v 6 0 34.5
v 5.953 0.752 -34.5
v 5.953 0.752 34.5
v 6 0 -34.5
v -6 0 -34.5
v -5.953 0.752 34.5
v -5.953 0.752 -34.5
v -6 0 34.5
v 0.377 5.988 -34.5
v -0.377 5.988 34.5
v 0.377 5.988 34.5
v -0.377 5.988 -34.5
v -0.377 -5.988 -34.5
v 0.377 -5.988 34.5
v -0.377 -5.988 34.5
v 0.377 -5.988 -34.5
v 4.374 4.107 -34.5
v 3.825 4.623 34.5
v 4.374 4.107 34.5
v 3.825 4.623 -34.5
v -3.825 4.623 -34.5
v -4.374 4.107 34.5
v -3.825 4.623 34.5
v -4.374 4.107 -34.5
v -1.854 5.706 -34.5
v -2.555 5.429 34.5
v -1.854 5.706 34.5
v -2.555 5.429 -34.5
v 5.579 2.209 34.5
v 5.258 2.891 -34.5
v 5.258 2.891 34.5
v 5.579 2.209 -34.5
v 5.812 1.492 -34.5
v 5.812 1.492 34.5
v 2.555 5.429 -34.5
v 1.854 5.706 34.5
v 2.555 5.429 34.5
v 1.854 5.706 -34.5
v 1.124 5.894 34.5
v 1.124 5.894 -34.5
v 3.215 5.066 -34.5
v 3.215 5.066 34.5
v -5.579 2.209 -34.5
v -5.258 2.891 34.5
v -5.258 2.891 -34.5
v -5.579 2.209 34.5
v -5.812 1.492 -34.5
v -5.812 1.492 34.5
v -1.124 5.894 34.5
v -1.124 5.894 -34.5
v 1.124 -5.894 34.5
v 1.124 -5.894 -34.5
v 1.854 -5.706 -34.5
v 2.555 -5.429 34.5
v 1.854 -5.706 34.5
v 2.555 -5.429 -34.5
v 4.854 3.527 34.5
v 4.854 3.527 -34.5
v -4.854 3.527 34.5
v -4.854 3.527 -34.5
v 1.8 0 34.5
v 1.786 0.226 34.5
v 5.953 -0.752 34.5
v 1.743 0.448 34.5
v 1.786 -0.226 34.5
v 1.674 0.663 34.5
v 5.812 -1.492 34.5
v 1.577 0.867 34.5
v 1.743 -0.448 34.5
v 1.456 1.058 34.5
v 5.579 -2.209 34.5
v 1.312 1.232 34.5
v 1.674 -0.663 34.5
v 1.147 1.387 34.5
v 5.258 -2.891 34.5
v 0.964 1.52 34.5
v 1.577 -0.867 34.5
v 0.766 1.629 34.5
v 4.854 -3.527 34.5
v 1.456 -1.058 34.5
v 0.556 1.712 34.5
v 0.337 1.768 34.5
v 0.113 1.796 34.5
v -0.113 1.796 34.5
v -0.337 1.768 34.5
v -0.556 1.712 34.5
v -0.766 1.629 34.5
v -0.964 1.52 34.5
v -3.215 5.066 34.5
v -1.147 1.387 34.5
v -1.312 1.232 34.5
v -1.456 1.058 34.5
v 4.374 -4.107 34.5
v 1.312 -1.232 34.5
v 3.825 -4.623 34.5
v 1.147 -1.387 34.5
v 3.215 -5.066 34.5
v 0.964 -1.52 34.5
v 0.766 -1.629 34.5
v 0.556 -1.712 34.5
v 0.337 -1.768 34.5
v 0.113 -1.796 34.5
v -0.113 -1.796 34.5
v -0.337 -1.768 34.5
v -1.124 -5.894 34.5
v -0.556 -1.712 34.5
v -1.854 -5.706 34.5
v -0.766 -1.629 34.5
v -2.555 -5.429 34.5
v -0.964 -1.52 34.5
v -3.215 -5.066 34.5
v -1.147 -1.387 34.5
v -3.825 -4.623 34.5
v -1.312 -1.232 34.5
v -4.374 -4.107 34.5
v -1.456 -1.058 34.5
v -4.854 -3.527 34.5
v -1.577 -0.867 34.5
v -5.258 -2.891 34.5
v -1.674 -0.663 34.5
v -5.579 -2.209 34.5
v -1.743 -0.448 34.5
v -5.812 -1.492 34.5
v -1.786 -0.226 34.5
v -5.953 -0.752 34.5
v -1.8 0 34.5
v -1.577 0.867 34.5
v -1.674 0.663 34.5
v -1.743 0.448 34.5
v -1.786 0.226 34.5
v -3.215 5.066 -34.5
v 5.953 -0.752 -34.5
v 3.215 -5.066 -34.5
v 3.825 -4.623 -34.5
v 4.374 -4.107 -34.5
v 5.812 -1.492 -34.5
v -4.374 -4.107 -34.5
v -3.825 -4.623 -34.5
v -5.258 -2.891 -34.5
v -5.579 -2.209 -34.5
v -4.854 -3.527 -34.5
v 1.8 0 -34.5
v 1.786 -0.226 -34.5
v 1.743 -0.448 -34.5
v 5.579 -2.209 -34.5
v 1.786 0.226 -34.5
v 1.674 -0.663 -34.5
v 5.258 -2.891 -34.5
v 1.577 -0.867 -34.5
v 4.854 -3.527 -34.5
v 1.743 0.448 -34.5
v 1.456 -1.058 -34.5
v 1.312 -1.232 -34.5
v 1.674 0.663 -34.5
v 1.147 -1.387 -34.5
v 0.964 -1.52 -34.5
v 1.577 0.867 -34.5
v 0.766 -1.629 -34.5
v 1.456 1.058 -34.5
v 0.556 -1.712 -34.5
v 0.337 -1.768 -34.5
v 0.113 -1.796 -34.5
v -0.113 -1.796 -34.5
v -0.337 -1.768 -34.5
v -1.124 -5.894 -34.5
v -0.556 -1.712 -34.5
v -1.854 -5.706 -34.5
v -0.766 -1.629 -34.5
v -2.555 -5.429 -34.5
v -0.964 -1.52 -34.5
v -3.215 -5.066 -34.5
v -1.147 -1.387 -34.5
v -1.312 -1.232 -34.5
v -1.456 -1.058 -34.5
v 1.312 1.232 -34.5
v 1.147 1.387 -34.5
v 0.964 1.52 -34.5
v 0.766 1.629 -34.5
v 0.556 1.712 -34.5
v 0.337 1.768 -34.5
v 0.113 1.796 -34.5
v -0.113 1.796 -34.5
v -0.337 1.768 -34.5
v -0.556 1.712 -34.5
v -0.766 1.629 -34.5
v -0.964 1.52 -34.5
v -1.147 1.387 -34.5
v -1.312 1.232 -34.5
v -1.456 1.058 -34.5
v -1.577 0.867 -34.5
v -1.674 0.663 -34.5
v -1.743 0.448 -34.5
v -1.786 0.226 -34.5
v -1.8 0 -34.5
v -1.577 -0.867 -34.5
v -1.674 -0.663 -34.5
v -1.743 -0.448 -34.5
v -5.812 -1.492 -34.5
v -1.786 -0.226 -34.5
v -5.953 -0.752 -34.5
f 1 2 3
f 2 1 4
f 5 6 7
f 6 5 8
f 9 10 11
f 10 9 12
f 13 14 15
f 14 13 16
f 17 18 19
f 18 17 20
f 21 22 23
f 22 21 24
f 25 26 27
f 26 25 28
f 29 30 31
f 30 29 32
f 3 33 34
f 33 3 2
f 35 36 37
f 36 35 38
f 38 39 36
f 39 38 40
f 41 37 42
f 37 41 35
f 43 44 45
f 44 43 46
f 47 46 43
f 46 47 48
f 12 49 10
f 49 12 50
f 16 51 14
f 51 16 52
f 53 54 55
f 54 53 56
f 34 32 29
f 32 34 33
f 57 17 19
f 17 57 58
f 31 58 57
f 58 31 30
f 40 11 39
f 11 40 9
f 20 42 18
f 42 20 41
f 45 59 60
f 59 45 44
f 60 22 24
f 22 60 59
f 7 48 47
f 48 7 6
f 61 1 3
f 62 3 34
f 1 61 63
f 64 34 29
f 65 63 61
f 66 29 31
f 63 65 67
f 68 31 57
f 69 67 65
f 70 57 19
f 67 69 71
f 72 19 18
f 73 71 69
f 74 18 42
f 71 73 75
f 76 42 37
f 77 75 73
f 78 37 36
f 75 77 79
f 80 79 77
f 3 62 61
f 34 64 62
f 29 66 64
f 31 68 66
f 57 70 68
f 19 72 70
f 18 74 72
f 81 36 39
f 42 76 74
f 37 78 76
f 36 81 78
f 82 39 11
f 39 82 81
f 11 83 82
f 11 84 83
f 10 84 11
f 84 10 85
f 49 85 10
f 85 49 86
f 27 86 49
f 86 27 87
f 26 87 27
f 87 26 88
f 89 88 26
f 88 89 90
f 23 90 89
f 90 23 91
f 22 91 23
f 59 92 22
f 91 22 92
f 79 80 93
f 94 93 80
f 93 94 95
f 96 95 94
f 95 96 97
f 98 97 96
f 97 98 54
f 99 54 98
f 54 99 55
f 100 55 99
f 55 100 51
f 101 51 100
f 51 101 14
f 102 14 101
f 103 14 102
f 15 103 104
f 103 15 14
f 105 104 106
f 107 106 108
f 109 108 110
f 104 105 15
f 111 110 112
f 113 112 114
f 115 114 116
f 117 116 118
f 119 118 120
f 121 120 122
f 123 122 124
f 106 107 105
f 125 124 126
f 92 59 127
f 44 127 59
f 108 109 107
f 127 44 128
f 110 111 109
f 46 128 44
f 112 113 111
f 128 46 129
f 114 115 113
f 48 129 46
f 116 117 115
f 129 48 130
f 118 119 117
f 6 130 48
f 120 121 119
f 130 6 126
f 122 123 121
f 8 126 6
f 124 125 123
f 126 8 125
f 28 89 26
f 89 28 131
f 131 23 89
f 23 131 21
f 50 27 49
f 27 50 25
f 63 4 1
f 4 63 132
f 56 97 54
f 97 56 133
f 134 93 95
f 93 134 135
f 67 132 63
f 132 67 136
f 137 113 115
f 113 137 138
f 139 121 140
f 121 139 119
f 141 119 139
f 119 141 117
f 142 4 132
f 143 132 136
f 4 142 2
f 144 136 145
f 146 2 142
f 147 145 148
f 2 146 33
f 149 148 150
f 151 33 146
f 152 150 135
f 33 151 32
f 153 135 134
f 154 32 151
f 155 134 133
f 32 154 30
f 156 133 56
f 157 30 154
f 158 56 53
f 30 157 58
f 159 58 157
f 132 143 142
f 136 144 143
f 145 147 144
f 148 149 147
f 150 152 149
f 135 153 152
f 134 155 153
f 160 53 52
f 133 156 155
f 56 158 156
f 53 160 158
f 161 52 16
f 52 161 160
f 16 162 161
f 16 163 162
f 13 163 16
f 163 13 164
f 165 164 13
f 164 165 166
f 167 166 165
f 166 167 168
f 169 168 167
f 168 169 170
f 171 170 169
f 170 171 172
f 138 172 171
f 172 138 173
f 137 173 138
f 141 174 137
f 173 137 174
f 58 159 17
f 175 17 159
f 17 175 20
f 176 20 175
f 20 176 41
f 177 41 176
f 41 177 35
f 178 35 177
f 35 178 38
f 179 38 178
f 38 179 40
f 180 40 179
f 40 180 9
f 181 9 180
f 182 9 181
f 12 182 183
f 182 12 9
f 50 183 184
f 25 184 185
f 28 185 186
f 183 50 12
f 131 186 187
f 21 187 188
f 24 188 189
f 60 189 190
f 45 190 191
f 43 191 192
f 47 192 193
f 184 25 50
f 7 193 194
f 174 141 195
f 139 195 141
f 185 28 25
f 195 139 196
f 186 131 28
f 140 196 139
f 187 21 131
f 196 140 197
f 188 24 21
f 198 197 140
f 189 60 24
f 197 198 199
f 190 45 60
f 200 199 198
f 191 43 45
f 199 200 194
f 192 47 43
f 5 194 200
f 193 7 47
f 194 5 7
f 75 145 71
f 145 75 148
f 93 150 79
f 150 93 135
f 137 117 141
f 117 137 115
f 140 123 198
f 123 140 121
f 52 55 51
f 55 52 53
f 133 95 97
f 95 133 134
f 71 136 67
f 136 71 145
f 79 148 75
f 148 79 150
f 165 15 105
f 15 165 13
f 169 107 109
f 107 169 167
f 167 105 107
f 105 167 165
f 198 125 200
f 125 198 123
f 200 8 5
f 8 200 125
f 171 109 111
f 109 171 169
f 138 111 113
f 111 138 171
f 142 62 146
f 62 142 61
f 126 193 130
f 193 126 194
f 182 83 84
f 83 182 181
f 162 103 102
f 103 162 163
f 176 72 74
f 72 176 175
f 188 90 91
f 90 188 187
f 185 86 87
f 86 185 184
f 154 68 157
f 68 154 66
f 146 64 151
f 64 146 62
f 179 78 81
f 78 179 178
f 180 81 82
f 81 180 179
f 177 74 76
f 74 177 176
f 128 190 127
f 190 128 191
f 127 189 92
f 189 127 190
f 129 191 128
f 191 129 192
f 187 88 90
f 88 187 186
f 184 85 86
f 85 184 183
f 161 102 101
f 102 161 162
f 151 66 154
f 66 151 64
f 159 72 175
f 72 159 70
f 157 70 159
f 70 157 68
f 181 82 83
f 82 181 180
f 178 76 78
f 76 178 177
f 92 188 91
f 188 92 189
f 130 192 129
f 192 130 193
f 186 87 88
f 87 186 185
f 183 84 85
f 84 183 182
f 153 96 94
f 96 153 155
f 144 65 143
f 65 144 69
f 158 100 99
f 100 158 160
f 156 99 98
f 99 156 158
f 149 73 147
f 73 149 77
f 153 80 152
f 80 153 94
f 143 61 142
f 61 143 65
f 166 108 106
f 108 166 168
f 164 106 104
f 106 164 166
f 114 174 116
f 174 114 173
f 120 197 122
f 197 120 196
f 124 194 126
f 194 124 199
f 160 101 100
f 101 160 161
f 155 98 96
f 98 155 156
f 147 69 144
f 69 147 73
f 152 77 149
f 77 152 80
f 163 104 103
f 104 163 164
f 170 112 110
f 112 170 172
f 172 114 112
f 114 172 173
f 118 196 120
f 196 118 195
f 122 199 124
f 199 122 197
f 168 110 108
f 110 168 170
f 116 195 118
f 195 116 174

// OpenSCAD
$fn = 50;


difference() {
	union() {
		translate(v = [0, 0, -34.5000000000]) {
			cylinder(h = 69, r = 6.0000000000);
		}
	}
	union() {
		translate(v = [0, 0, -100.0000000000]) {
			cylinder(h = 200, r = 1.8000000000);
		}
	}
}
